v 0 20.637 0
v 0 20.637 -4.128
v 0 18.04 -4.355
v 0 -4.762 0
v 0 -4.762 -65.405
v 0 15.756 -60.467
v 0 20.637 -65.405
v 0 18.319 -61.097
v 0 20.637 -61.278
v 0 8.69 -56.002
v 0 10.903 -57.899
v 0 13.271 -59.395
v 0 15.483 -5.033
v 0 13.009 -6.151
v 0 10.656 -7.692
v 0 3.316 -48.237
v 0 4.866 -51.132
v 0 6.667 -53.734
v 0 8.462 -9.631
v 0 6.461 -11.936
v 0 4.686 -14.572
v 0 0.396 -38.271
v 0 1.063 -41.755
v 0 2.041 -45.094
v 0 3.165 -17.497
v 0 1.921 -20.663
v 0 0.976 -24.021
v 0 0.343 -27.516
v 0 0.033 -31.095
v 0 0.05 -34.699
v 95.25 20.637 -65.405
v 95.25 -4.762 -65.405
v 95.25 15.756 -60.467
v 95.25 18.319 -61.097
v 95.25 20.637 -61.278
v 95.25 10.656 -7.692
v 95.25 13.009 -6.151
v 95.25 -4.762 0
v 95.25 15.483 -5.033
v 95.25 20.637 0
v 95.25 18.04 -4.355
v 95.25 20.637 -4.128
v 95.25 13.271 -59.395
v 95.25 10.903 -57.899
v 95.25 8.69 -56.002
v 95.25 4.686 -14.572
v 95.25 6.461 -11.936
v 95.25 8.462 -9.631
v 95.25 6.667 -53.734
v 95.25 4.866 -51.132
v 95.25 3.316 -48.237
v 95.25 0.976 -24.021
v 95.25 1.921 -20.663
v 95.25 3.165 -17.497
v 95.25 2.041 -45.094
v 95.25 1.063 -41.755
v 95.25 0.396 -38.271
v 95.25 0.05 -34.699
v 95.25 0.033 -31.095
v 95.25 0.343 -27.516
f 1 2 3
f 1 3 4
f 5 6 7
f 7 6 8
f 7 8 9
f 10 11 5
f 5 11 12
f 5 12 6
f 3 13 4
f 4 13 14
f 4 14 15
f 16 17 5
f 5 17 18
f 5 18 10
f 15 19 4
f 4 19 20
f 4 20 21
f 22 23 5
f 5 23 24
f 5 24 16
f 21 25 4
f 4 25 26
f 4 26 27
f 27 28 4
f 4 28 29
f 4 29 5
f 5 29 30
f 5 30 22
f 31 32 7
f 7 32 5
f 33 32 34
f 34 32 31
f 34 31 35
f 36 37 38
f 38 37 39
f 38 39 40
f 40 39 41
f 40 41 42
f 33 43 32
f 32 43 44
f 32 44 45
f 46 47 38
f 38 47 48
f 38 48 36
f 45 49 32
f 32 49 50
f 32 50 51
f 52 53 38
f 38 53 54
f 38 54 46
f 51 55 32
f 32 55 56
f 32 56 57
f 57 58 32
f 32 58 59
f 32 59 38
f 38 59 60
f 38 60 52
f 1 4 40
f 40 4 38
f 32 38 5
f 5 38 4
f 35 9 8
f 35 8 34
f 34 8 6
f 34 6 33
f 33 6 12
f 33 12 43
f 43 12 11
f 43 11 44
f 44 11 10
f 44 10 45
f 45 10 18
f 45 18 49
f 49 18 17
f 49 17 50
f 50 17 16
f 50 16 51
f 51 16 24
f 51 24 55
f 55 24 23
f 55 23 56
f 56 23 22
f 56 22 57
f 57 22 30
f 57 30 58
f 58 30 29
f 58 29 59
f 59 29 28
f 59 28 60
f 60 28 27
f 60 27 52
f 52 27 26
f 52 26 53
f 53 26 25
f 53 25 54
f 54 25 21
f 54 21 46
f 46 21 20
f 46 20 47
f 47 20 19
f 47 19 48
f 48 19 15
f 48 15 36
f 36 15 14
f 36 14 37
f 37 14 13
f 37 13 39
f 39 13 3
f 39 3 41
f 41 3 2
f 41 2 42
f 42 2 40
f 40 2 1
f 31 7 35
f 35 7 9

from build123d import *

# Parameters (mm, degrees)
SKETCH1_W           = 95.25
SKETCH1_H           = 65.405
BOSS_EXTRUDE1_DEPTH = 4.7625
BOSS_EXTRUDE3_DEPTH = 95.25


with BuildPart() as part:
    # Sketch1 → Boss-Extrude1 (new body)
    with BuildSketch(Plane(origin=(0, 0, 0), x_dir=(1, 0, 0), z_dir=(0, 1, 0))):
        with Locations((47.625, 32.7025)):
            Rectangle(SKETCH1_W, SKETCH1_H)
    extrude(amount=-BOSS_EXTRUDE1_DEPTH)

    # Sketch4 → Boss-Extrude3 (add)
    with BuildSketch(Plane(origin=(0, 0, 0), x_dir=(0, 0, -1), z_dir=(1, 0, 0))):
        with BuildLine():
            Line((0, 20.6375), (0, 0))
            Line((0, 0), (32.7025, 0))
            add(Edge.make_bspline(
                [(4.1275, 20.6375), (4.1275, 0), (32.7025, 0)],
                knots=[0, 0, 0, 1.570796327, 1.570796327, 1.570796327], degree=2, weights=[1, 0.707106781, 1]))
            Line((4.1275, 20.6375), (0, 20.6375))
        make_face()
        with BuildLine():
            add(Edge.make_bspline(
                [(32.7025, 0), (61.2775, 0), (61.2775, 20.6375)],
                knots=[1.570796327, 1.570796327, 1.570796327, 3.141592654, 3.141592654, 3.141592654], degree=2, weights=[1, 0.707106781, 1]))
            Line((32.7025, 0), (65.405, 0))
            Line((65.405, 0), (65.405, 20.6375))
            Line((65.405, 20.6375), (61.2775, 20.6375))
        make_face()
    extrude(amount=BOSS_EXTRUDE3_DEPTH)


solid = part.part
